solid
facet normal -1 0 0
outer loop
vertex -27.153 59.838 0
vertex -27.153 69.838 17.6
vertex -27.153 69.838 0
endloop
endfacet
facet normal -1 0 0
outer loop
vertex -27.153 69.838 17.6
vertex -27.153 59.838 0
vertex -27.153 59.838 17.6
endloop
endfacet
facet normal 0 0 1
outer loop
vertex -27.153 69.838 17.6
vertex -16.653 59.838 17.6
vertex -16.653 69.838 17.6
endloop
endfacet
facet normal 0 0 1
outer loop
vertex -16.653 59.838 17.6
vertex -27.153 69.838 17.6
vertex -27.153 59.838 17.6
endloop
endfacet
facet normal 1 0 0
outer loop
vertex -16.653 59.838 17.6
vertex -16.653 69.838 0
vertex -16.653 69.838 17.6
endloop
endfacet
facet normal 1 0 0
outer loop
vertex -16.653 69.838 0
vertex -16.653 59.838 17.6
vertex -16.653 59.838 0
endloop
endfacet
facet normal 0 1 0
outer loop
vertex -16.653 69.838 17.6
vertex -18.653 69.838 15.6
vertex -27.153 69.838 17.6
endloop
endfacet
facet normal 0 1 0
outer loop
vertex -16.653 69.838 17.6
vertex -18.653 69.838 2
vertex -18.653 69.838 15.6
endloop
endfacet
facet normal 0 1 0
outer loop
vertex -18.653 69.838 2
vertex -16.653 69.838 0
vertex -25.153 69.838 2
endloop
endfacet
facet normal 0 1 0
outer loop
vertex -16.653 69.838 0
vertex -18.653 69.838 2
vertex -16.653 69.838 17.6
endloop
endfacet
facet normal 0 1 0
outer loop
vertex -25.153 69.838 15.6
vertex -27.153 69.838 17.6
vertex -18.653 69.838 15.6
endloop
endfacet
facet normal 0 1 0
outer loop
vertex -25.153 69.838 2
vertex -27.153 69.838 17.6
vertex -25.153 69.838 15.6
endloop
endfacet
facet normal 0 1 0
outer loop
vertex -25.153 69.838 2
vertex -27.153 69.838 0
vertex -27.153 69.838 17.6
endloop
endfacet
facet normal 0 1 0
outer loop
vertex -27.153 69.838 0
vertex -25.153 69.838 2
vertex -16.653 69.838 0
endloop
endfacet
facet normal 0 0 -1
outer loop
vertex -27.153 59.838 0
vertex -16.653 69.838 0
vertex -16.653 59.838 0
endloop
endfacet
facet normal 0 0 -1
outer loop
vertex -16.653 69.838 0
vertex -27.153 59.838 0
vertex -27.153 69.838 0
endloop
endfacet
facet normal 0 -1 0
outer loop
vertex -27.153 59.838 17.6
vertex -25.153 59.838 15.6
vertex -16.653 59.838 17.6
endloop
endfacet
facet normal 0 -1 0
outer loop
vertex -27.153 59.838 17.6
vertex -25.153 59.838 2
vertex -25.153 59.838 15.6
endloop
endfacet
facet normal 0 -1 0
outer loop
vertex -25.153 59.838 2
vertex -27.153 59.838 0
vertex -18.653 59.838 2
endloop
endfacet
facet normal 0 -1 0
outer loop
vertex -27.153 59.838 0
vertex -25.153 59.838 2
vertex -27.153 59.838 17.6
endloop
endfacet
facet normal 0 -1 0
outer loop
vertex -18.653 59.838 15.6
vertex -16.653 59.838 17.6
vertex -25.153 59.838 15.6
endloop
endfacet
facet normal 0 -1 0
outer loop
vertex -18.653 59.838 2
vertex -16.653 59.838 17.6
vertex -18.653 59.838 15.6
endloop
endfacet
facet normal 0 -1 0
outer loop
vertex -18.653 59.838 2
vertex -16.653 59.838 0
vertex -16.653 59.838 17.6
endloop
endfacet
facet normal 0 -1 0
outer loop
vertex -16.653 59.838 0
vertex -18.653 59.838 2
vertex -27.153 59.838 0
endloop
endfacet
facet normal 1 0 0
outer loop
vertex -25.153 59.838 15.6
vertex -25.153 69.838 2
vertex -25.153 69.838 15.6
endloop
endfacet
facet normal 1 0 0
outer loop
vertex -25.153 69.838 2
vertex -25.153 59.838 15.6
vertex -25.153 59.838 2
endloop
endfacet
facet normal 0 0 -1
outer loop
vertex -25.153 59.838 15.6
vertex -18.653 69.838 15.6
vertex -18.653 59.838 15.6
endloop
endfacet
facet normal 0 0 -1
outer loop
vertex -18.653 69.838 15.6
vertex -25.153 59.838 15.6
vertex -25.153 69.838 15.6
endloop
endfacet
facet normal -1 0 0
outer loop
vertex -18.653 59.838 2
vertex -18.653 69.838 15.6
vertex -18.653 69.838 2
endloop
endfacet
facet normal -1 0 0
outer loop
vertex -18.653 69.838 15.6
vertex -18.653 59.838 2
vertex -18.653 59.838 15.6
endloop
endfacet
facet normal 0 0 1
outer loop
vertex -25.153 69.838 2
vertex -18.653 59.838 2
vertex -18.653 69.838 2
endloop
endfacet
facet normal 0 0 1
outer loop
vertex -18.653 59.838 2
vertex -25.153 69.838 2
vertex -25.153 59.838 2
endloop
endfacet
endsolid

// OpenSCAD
difference () {
  translate ([-21.903416292365062, 64.83759323340148, 8.8]) {
    cube ([10.5, 10.0, 17.6], center=true);
  }
  translate ([-21.903416292365062, 64.83759323340148, 8.8]) {
    cube ([6.5, 10.0, 13.6], center=true);
  }
}
